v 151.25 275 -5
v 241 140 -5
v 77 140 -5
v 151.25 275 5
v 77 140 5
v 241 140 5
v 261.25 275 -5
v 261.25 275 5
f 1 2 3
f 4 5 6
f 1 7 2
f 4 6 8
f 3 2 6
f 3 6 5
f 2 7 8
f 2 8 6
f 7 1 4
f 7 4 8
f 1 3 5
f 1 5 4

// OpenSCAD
polyhedron(points=[[151.25, 275.0, -5.0], [77.0, 140.0, -5.0], [241.0, 140.0, -5.0], [151.25, 275.0, 5.0], [77.0, 140.0, 5.0], [241.0, 140.0, 5.0], [261.25, 275.0, -5.0], [261.25, 275.0, 5.0]], faces=[[0, 2, 1], [3, 4, 5], [0, 6, 2], [3, 5, 7], [1, 2, 5], [1, 5, 4], [2, 6, 7], [2, 7, 5], [6, 0, 3], [6, 3, 7], [0, 1, 4], [0, 4, 3]], convexity=20);
